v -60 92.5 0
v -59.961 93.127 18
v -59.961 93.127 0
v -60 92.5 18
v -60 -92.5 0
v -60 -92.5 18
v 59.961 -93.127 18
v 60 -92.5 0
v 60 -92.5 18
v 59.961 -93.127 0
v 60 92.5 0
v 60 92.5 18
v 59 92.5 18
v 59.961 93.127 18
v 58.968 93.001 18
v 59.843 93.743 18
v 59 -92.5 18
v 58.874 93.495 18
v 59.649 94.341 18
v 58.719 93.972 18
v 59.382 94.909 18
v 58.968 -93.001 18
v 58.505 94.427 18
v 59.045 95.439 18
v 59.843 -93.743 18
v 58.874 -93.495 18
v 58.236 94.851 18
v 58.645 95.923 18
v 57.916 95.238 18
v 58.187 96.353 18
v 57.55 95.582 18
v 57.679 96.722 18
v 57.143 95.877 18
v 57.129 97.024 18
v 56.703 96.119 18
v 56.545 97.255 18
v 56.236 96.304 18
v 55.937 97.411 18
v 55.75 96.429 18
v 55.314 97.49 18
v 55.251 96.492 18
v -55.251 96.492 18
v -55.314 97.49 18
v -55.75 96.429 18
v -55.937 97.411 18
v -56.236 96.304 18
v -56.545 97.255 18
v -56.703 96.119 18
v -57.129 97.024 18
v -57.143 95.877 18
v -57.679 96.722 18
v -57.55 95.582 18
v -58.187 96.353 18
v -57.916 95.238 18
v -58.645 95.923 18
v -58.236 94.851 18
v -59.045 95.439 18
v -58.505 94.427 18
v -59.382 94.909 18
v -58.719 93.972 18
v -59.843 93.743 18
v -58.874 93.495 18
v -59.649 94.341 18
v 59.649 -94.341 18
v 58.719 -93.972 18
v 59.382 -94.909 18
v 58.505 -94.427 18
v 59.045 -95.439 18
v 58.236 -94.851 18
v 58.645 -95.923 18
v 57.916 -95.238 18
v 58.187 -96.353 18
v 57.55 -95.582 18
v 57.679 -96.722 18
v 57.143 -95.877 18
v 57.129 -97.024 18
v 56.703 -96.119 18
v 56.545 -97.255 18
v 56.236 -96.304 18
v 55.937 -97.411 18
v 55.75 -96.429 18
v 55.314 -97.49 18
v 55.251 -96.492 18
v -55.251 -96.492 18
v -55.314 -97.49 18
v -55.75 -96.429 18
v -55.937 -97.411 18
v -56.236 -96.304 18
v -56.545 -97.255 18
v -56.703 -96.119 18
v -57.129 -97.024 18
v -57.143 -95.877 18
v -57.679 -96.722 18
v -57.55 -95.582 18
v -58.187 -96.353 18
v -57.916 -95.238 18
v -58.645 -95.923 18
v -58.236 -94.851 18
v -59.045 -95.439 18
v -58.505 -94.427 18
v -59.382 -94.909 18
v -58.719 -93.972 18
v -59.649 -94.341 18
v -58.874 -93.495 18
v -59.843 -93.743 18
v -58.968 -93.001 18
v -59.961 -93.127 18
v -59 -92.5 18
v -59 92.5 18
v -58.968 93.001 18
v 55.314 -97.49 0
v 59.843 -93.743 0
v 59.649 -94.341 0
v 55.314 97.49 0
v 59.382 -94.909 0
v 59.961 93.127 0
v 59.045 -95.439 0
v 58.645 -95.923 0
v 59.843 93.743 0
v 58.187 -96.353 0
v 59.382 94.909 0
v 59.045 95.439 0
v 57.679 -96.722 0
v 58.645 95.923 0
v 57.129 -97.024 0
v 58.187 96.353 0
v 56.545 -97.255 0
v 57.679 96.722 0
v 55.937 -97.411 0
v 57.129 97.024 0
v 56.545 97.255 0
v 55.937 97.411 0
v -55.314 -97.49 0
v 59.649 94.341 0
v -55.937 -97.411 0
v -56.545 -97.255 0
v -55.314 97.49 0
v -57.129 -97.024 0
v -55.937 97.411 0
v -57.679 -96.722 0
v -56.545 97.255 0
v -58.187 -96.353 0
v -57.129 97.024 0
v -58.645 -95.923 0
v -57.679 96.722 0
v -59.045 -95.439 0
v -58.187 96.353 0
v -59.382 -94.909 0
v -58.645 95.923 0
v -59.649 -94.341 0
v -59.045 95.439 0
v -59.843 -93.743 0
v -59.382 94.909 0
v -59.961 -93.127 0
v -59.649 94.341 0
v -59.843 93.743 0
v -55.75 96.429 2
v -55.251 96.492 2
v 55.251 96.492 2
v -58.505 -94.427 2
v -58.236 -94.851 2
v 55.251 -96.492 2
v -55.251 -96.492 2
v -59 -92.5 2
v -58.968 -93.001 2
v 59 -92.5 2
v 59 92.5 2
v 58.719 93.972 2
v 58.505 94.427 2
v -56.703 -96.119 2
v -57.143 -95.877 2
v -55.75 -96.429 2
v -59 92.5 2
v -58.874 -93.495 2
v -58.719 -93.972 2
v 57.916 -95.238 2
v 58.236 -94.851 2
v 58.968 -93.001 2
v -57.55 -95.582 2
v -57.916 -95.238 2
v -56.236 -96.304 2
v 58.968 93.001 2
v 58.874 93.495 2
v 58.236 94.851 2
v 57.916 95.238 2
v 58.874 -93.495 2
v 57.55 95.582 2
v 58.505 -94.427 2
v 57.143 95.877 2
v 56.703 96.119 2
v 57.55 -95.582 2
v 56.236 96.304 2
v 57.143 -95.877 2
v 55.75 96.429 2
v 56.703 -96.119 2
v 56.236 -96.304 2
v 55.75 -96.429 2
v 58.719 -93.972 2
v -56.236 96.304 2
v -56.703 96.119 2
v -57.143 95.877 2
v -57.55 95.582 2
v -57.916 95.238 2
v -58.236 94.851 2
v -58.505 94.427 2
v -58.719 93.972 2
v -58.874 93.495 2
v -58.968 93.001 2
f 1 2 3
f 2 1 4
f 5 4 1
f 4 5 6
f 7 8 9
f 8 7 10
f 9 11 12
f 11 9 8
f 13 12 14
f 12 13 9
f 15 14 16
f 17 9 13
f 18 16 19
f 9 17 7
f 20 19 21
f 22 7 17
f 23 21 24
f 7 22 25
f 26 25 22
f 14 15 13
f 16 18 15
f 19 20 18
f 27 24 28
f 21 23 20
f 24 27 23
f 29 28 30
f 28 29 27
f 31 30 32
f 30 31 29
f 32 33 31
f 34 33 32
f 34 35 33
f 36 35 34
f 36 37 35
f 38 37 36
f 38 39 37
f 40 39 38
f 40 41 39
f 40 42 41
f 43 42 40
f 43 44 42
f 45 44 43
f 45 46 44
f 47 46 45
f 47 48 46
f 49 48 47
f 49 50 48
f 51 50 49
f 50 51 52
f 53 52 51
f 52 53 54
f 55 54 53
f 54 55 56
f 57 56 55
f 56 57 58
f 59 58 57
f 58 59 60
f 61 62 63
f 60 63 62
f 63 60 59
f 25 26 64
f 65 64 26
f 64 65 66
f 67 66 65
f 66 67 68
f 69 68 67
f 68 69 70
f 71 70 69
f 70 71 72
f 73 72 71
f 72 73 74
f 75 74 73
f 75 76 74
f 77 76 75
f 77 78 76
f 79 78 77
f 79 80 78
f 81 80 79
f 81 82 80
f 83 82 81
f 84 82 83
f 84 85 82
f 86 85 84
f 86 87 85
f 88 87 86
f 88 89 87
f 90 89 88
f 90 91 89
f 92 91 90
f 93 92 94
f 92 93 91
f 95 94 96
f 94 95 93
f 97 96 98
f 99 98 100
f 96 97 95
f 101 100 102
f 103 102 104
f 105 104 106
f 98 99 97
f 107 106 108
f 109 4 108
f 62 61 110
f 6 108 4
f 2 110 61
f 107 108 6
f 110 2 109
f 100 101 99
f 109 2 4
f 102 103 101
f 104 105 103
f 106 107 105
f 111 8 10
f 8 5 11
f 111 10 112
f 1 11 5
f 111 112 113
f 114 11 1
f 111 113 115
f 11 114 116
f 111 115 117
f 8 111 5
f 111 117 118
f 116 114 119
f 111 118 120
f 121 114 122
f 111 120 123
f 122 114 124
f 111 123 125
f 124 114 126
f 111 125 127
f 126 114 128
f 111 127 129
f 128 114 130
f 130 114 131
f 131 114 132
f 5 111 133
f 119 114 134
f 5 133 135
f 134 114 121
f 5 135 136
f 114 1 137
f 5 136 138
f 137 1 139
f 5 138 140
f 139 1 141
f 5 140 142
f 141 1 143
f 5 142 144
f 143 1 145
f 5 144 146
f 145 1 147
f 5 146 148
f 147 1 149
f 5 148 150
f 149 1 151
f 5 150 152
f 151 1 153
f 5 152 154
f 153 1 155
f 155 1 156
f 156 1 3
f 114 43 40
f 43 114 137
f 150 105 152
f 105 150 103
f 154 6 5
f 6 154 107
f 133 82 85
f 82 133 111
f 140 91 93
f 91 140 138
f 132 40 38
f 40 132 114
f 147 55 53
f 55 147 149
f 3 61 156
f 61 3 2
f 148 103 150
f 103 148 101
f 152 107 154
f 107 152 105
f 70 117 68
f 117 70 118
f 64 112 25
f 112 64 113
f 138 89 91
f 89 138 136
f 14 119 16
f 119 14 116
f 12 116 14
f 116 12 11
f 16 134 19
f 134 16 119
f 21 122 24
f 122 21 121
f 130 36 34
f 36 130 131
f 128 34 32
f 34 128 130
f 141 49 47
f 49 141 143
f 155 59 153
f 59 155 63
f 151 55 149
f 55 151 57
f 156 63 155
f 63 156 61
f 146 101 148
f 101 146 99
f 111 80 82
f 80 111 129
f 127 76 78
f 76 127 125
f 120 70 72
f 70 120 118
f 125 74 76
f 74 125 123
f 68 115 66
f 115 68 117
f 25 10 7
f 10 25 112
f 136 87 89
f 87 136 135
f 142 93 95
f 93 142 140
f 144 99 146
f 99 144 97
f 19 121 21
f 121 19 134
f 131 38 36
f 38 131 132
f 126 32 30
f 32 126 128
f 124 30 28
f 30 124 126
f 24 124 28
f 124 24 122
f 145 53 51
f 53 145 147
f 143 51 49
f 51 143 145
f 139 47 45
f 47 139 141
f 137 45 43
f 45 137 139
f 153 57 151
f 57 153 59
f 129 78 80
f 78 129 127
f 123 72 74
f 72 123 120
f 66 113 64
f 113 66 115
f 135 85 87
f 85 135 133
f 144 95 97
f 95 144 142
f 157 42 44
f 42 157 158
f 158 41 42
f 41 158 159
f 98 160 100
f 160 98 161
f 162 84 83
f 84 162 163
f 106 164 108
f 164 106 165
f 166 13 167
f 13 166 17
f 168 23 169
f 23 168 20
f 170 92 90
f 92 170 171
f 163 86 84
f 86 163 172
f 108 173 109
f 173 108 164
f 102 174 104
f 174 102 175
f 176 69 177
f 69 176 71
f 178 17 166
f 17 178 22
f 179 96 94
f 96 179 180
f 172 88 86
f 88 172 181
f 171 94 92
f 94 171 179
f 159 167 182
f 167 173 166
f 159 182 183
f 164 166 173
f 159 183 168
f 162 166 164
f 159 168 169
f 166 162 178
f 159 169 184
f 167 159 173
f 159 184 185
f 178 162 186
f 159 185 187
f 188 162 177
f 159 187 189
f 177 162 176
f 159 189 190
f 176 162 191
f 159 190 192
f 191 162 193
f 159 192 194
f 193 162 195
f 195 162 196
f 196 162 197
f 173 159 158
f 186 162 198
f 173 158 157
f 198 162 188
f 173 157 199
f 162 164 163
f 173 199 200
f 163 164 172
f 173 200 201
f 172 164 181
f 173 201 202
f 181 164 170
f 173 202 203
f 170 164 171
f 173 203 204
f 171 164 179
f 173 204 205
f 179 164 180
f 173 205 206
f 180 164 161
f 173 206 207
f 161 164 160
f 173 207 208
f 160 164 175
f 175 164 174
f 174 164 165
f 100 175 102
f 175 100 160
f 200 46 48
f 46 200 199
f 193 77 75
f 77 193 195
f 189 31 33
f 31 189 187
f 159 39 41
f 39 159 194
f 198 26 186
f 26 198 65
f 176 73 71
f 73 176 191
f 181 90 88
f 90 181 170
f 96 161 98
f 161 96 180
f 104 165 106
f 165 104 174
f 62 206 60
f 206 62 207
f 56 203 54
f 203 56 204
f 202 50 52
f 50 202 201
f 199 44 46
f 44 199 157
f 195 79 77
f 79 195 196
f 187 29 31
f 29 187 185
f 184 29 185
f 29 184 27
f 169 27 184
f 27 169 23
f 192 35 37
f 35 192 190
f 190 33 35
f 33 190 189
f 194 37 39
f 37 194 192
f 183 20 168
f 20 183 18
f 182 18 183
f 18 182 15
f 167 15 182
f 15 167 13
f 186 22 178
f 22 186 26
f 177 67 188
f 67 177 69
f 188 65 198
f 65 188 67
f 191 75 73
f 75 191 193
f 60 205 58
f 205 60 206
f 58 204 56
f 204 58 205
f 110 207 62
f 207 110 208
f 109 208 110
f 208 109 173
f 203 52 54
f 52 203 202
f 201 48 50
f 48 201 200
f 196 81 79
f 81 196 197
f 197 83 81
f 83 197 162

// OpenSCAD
$fn = 50;


difference() {
	union() {
		hull() {
			translate(v = [-55.0000000000, 92.5000000000, 0]) {
				cylinder(h = 18, r = 5);
			}
			translate(v = [55.0000000000, 92.5000000000, 0]) {
				cylinder(h = 18, r = 5);
			}
			translate(v = [-55.0000000000, -92.5000000000, 0]) {
				cylinder(h = 18, r = 5);
			}
			translate(v = [55.0000000000, -92.5000000000, 0]) {
				cylinder(h = 18, r = 5);
			}
		}
	}
	union() {
		translate(v = [0, 0, 2]) {
			hull() {
				translate(v = [-55.0000000000, 92.5000000000, 0]) {
					cylinder(h = 16, r = 4);
				}
				translate(v = [55.0000000000, 92.5000000000, 0]) {
					cylinder(h = 16, r = 4);
				}
				translate(v = [-55.0000000000, -92.5000000000, 0]) {
					cylinder(h = 16, r = 4);
				}
				translate(v = [55.0000000000, -92.5000000000, 0]) {
					cylinder(h = 16, r = 4);
				}
			}
		}
	}
}
